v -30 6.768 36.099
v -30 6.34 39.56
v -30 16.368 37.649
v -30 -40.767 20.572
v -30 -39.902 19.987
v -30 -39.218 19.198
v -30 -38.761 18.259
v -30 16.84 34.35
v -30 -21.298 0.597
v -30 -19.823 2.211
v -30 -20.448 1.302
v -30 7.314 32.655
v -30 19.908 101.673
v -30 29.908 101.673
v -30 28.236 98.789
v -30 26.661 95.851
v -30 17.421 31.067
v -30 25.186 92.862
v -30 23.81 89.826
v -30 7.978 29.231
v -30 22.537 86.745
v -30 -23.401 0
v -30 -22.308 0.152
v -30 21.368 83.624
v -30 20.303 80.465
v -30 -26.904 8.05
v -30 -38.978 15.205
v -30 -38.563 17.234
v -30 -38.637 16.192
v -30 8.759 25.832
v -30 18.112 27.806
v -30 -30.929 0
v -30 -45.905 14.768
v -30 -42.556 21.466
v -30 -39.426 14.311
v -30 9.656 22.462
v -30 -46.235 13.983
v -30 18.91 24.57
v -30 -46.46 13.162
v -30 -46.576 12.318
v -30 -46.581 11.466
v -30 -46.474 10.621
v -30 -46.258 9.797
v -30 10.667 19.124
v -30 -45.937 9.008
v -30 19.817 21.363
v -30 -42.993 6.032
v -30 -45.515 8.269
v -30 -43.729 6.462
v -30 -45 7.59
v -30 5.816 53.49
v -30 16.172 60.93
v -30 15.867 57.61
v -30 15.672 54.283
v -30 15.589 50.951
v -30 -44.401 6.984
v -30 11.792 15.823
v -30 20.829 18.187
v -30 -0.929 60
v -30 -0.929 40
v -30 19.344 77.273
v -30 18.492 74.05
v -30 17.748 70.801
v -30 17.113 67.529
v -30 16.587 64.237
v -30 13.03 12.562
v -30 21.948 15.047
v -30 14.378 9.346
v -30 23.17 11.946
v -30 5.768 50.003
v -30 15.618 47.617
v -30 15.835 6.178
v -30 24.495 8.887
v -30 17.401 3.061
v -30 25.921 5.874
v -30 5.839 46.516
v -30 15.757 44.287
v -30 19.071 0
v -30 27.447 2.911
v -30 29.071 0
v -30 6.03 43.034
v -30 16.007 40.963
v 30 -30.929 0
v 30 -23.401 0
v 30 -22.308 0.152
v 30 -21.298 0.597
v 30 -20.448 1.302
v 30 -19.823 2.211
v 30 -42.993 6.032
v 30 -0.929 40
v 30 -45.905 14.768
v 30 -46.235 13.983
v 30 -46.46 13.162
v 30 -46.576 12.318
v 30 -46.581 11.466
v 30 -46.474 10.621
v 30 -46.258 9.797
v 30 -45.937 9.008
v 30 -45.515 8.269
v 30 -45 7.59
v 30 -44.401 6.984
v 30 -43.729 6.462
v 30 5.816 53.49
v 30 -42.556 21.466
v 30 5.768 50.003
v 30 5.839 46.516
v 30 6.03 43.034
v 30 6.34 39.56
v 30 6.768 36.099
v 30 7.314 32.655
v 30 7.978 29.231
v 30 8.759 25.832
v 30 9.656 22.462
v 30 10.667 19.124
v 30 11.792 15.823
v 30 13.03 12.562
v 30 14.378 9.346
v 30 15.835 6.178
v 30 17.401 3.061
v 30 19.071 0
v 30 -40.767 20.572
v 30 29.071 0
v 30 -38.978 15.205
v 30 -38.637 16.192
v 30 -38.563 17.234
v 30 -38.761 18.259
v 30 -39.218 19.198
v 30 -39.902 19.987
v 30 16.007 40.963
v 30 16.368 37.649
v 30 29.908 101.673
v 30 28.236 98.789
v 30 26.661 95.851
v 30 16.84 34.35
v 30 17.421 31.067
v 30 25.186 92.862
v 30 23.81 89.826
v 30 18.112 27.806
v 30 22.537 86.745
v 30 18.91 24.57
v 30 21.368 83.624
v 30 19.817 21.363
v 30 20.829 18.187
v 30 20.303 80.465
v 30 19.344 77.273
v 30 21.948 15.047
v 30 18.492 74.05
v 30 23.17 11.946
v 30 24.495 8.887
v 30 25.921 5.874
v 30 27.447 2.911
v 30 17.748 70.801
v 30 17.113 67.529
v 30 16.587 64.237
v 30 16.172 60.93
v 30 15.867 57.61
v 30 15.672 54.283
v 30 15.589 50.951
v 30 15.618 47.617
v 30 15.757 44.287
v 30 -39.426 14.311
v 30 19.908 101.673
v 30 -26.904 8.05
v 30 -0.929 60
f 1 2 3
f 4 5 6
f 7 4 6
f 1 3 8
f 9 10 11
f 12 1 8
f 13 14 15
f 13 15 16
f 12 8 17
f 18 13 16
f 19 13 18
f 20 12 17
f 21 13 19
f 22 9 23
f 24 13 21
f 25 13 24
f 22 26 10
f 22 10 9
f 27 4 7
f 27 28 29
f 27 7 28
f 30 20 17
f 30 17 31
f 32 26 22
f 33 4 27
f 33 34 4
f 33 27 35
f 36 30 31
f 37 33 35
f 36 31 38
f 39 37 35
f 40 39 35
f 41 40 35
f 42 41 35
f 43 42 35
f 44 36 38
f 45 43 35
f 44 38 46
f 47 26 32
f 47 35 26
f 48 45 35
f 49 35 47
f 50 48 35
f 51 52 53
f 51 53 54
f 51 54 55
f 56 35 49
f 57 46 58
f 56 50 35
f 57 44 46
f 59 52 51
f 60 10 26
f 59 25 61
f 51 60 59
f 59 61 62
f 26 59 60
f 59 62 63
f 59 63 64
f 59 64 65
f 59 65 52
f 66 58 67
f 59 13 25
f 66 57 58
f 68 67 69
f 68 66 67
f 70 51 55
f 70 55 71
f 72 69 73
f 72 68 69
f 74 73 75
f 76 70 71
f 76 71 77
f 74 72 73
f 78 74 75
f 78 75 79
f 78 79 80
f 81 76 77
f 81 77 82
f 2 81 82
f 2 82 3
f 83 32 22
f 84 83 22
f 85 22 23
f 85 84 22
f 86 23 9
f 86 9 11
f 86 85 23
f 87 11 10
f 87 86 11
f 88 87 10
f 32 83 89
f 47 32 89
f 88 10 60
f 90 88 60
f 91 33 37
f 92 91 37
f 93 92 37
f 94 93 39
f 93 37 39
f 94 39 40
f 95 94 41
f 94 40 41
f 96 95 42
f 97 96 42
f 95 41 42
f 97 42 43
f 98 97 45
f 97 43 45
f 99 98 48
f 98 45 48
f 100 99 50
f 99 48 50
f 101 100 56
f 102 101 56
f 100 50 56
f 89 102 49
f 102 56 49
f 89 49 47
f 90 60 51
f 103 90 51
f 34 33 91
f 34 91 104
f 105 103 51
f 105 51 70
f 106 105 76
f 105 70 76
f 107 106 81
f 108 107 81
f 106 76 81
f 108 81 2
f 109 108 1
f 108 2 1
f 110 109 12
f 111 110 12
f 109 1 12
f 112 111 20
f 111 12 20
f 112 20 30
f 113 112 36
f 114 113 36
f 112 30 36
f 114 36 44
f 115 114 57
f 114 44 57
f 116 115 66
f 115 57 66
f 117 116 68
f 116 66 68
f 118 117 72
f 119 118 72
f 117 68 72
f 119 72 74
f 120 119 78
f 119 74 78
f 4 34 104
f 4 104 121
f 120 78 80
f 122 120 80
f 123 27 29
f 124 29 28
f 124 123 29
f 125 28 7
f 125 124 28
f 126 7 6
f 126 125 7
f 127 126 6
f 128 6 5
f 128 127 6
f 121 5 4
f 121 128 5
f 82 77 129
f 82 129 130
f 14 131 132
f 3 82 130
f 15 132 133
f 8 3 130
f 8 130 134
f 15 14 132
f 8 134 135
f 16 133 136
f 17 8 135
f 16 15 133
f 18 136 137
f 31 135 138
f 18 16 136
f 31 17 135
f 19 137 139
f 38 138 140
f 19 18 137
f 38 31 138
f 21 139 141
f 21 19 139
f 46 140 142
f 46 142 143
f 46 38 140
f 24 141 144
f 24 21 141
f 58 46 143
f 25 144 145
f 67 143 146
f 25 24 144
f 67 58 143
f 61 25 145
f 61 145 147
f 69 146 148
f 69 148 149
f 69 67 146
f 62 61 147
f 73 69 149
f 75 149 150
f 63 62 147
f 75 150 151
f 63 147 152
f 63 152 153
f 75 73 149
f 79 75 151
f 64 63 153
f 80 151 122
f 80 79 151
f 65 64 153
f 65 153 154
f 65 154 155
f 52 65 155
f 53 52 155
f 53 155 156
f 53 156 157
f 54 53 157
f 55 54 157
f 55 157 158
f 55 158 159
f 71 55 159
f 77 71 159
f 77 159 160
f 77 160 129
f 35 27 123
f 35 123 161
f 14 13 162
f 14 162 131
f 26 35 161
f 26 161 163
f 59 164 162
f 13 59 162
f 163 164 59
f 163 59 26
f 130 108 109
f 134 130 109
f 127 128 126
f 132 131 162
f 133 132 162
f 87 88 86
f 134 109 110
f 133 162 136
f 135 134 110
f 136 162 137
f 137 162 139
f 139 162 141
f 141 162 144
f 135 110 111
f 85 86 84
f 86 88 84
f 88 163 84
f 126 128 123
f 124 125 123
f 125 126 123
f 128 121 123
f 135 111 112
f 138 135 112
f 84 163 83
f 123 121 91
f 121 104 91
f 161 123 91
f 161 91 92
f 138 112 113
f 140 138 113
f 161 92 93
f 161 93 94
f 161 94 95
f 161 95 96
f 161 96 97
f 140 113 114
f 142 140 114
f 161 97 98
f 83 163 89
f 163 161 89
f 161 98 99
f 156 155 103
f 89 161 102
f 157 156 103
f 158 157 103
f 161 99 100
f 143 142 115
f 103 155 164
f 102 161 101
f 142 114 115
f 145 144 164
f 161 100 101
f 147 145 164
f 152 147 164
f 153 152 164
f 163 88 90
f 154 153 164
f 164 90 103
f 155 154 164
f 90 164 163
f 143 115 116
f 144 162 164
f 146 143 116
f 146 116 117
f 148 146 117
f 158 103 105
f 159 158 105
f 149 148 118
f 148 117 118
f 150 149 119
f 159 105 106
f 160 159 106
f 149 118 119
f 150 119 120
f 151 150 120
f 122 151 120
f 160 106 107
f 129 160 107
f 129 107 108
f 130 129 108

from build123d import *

# Parameters (mm, degrees)
PAD_DEPTH   = 30
FILLET_R    = 4
FILLET001_R = 4


with BuildPart() as part:
    # Sketch → Pad (new body, symmetric)
    with BuildSketch(Plane.YZ):
        with BuildLine():
            Line((-30.928615, 0), (-20.928615, 0))
            Line((-20.928615, 0), (-0.928621, 40.000014))
            Line((-0.928621, 40.000014), (5.816401, 53.490069))
            ThreePointArc((5.816401, 53.490069), (8.759064, 25.831927), (19.071385, 7e-06))
            Line((19.071385, 7e-06), (29.071385, 7e-06))
            ThreePointArc((29.907603, 101.672508), (15.589377, 50.95058), (29.071385, 7e-06))
            Line((19.907603, 101.672508), (29.907603, 101.672508))
            Line((-0.928626, 60.00002), (19.907603, 101.672508))
            Line((-0.928626, 60.00002), (-26.903694, 8.049846))
            Line((-39.425677, 14.310833), (-26.903694, 8.049846))
            Line((-37.18961, 18.782969), (-39.425677, 14.310833))
            Line((-42.556174, 21.466249), (-37.18961, 18.782969))
            Line((-45.905216, 14.768161), (-42.556174, 21.466249))
            ThreePointArc((-45.905216, 14.768161), (-46.258493, 9.797157), (-42.993266, 6.032322))
            Line((-30.928615, 0), (-42.993266, 6.032322))
        make_face()
    extrude(amount=PAD_DEPTH, both=True)

    # Fillet
    fillet_edges = [part.edges().sort_by_distance(p)[0] for p in [
        (0, -37.18961, 18.782969),
    ]]
    fillet(fillet_edges, radius=FILLET_R)

    # Fillet001
    fillet001_edges = [part.edges().sort_by_distance(p)[0] for p in [
        (0, -20.928615, 0),
    ]]
    fillet(fillet001_edges, radius=FILLET001_R)


solid = part.part
